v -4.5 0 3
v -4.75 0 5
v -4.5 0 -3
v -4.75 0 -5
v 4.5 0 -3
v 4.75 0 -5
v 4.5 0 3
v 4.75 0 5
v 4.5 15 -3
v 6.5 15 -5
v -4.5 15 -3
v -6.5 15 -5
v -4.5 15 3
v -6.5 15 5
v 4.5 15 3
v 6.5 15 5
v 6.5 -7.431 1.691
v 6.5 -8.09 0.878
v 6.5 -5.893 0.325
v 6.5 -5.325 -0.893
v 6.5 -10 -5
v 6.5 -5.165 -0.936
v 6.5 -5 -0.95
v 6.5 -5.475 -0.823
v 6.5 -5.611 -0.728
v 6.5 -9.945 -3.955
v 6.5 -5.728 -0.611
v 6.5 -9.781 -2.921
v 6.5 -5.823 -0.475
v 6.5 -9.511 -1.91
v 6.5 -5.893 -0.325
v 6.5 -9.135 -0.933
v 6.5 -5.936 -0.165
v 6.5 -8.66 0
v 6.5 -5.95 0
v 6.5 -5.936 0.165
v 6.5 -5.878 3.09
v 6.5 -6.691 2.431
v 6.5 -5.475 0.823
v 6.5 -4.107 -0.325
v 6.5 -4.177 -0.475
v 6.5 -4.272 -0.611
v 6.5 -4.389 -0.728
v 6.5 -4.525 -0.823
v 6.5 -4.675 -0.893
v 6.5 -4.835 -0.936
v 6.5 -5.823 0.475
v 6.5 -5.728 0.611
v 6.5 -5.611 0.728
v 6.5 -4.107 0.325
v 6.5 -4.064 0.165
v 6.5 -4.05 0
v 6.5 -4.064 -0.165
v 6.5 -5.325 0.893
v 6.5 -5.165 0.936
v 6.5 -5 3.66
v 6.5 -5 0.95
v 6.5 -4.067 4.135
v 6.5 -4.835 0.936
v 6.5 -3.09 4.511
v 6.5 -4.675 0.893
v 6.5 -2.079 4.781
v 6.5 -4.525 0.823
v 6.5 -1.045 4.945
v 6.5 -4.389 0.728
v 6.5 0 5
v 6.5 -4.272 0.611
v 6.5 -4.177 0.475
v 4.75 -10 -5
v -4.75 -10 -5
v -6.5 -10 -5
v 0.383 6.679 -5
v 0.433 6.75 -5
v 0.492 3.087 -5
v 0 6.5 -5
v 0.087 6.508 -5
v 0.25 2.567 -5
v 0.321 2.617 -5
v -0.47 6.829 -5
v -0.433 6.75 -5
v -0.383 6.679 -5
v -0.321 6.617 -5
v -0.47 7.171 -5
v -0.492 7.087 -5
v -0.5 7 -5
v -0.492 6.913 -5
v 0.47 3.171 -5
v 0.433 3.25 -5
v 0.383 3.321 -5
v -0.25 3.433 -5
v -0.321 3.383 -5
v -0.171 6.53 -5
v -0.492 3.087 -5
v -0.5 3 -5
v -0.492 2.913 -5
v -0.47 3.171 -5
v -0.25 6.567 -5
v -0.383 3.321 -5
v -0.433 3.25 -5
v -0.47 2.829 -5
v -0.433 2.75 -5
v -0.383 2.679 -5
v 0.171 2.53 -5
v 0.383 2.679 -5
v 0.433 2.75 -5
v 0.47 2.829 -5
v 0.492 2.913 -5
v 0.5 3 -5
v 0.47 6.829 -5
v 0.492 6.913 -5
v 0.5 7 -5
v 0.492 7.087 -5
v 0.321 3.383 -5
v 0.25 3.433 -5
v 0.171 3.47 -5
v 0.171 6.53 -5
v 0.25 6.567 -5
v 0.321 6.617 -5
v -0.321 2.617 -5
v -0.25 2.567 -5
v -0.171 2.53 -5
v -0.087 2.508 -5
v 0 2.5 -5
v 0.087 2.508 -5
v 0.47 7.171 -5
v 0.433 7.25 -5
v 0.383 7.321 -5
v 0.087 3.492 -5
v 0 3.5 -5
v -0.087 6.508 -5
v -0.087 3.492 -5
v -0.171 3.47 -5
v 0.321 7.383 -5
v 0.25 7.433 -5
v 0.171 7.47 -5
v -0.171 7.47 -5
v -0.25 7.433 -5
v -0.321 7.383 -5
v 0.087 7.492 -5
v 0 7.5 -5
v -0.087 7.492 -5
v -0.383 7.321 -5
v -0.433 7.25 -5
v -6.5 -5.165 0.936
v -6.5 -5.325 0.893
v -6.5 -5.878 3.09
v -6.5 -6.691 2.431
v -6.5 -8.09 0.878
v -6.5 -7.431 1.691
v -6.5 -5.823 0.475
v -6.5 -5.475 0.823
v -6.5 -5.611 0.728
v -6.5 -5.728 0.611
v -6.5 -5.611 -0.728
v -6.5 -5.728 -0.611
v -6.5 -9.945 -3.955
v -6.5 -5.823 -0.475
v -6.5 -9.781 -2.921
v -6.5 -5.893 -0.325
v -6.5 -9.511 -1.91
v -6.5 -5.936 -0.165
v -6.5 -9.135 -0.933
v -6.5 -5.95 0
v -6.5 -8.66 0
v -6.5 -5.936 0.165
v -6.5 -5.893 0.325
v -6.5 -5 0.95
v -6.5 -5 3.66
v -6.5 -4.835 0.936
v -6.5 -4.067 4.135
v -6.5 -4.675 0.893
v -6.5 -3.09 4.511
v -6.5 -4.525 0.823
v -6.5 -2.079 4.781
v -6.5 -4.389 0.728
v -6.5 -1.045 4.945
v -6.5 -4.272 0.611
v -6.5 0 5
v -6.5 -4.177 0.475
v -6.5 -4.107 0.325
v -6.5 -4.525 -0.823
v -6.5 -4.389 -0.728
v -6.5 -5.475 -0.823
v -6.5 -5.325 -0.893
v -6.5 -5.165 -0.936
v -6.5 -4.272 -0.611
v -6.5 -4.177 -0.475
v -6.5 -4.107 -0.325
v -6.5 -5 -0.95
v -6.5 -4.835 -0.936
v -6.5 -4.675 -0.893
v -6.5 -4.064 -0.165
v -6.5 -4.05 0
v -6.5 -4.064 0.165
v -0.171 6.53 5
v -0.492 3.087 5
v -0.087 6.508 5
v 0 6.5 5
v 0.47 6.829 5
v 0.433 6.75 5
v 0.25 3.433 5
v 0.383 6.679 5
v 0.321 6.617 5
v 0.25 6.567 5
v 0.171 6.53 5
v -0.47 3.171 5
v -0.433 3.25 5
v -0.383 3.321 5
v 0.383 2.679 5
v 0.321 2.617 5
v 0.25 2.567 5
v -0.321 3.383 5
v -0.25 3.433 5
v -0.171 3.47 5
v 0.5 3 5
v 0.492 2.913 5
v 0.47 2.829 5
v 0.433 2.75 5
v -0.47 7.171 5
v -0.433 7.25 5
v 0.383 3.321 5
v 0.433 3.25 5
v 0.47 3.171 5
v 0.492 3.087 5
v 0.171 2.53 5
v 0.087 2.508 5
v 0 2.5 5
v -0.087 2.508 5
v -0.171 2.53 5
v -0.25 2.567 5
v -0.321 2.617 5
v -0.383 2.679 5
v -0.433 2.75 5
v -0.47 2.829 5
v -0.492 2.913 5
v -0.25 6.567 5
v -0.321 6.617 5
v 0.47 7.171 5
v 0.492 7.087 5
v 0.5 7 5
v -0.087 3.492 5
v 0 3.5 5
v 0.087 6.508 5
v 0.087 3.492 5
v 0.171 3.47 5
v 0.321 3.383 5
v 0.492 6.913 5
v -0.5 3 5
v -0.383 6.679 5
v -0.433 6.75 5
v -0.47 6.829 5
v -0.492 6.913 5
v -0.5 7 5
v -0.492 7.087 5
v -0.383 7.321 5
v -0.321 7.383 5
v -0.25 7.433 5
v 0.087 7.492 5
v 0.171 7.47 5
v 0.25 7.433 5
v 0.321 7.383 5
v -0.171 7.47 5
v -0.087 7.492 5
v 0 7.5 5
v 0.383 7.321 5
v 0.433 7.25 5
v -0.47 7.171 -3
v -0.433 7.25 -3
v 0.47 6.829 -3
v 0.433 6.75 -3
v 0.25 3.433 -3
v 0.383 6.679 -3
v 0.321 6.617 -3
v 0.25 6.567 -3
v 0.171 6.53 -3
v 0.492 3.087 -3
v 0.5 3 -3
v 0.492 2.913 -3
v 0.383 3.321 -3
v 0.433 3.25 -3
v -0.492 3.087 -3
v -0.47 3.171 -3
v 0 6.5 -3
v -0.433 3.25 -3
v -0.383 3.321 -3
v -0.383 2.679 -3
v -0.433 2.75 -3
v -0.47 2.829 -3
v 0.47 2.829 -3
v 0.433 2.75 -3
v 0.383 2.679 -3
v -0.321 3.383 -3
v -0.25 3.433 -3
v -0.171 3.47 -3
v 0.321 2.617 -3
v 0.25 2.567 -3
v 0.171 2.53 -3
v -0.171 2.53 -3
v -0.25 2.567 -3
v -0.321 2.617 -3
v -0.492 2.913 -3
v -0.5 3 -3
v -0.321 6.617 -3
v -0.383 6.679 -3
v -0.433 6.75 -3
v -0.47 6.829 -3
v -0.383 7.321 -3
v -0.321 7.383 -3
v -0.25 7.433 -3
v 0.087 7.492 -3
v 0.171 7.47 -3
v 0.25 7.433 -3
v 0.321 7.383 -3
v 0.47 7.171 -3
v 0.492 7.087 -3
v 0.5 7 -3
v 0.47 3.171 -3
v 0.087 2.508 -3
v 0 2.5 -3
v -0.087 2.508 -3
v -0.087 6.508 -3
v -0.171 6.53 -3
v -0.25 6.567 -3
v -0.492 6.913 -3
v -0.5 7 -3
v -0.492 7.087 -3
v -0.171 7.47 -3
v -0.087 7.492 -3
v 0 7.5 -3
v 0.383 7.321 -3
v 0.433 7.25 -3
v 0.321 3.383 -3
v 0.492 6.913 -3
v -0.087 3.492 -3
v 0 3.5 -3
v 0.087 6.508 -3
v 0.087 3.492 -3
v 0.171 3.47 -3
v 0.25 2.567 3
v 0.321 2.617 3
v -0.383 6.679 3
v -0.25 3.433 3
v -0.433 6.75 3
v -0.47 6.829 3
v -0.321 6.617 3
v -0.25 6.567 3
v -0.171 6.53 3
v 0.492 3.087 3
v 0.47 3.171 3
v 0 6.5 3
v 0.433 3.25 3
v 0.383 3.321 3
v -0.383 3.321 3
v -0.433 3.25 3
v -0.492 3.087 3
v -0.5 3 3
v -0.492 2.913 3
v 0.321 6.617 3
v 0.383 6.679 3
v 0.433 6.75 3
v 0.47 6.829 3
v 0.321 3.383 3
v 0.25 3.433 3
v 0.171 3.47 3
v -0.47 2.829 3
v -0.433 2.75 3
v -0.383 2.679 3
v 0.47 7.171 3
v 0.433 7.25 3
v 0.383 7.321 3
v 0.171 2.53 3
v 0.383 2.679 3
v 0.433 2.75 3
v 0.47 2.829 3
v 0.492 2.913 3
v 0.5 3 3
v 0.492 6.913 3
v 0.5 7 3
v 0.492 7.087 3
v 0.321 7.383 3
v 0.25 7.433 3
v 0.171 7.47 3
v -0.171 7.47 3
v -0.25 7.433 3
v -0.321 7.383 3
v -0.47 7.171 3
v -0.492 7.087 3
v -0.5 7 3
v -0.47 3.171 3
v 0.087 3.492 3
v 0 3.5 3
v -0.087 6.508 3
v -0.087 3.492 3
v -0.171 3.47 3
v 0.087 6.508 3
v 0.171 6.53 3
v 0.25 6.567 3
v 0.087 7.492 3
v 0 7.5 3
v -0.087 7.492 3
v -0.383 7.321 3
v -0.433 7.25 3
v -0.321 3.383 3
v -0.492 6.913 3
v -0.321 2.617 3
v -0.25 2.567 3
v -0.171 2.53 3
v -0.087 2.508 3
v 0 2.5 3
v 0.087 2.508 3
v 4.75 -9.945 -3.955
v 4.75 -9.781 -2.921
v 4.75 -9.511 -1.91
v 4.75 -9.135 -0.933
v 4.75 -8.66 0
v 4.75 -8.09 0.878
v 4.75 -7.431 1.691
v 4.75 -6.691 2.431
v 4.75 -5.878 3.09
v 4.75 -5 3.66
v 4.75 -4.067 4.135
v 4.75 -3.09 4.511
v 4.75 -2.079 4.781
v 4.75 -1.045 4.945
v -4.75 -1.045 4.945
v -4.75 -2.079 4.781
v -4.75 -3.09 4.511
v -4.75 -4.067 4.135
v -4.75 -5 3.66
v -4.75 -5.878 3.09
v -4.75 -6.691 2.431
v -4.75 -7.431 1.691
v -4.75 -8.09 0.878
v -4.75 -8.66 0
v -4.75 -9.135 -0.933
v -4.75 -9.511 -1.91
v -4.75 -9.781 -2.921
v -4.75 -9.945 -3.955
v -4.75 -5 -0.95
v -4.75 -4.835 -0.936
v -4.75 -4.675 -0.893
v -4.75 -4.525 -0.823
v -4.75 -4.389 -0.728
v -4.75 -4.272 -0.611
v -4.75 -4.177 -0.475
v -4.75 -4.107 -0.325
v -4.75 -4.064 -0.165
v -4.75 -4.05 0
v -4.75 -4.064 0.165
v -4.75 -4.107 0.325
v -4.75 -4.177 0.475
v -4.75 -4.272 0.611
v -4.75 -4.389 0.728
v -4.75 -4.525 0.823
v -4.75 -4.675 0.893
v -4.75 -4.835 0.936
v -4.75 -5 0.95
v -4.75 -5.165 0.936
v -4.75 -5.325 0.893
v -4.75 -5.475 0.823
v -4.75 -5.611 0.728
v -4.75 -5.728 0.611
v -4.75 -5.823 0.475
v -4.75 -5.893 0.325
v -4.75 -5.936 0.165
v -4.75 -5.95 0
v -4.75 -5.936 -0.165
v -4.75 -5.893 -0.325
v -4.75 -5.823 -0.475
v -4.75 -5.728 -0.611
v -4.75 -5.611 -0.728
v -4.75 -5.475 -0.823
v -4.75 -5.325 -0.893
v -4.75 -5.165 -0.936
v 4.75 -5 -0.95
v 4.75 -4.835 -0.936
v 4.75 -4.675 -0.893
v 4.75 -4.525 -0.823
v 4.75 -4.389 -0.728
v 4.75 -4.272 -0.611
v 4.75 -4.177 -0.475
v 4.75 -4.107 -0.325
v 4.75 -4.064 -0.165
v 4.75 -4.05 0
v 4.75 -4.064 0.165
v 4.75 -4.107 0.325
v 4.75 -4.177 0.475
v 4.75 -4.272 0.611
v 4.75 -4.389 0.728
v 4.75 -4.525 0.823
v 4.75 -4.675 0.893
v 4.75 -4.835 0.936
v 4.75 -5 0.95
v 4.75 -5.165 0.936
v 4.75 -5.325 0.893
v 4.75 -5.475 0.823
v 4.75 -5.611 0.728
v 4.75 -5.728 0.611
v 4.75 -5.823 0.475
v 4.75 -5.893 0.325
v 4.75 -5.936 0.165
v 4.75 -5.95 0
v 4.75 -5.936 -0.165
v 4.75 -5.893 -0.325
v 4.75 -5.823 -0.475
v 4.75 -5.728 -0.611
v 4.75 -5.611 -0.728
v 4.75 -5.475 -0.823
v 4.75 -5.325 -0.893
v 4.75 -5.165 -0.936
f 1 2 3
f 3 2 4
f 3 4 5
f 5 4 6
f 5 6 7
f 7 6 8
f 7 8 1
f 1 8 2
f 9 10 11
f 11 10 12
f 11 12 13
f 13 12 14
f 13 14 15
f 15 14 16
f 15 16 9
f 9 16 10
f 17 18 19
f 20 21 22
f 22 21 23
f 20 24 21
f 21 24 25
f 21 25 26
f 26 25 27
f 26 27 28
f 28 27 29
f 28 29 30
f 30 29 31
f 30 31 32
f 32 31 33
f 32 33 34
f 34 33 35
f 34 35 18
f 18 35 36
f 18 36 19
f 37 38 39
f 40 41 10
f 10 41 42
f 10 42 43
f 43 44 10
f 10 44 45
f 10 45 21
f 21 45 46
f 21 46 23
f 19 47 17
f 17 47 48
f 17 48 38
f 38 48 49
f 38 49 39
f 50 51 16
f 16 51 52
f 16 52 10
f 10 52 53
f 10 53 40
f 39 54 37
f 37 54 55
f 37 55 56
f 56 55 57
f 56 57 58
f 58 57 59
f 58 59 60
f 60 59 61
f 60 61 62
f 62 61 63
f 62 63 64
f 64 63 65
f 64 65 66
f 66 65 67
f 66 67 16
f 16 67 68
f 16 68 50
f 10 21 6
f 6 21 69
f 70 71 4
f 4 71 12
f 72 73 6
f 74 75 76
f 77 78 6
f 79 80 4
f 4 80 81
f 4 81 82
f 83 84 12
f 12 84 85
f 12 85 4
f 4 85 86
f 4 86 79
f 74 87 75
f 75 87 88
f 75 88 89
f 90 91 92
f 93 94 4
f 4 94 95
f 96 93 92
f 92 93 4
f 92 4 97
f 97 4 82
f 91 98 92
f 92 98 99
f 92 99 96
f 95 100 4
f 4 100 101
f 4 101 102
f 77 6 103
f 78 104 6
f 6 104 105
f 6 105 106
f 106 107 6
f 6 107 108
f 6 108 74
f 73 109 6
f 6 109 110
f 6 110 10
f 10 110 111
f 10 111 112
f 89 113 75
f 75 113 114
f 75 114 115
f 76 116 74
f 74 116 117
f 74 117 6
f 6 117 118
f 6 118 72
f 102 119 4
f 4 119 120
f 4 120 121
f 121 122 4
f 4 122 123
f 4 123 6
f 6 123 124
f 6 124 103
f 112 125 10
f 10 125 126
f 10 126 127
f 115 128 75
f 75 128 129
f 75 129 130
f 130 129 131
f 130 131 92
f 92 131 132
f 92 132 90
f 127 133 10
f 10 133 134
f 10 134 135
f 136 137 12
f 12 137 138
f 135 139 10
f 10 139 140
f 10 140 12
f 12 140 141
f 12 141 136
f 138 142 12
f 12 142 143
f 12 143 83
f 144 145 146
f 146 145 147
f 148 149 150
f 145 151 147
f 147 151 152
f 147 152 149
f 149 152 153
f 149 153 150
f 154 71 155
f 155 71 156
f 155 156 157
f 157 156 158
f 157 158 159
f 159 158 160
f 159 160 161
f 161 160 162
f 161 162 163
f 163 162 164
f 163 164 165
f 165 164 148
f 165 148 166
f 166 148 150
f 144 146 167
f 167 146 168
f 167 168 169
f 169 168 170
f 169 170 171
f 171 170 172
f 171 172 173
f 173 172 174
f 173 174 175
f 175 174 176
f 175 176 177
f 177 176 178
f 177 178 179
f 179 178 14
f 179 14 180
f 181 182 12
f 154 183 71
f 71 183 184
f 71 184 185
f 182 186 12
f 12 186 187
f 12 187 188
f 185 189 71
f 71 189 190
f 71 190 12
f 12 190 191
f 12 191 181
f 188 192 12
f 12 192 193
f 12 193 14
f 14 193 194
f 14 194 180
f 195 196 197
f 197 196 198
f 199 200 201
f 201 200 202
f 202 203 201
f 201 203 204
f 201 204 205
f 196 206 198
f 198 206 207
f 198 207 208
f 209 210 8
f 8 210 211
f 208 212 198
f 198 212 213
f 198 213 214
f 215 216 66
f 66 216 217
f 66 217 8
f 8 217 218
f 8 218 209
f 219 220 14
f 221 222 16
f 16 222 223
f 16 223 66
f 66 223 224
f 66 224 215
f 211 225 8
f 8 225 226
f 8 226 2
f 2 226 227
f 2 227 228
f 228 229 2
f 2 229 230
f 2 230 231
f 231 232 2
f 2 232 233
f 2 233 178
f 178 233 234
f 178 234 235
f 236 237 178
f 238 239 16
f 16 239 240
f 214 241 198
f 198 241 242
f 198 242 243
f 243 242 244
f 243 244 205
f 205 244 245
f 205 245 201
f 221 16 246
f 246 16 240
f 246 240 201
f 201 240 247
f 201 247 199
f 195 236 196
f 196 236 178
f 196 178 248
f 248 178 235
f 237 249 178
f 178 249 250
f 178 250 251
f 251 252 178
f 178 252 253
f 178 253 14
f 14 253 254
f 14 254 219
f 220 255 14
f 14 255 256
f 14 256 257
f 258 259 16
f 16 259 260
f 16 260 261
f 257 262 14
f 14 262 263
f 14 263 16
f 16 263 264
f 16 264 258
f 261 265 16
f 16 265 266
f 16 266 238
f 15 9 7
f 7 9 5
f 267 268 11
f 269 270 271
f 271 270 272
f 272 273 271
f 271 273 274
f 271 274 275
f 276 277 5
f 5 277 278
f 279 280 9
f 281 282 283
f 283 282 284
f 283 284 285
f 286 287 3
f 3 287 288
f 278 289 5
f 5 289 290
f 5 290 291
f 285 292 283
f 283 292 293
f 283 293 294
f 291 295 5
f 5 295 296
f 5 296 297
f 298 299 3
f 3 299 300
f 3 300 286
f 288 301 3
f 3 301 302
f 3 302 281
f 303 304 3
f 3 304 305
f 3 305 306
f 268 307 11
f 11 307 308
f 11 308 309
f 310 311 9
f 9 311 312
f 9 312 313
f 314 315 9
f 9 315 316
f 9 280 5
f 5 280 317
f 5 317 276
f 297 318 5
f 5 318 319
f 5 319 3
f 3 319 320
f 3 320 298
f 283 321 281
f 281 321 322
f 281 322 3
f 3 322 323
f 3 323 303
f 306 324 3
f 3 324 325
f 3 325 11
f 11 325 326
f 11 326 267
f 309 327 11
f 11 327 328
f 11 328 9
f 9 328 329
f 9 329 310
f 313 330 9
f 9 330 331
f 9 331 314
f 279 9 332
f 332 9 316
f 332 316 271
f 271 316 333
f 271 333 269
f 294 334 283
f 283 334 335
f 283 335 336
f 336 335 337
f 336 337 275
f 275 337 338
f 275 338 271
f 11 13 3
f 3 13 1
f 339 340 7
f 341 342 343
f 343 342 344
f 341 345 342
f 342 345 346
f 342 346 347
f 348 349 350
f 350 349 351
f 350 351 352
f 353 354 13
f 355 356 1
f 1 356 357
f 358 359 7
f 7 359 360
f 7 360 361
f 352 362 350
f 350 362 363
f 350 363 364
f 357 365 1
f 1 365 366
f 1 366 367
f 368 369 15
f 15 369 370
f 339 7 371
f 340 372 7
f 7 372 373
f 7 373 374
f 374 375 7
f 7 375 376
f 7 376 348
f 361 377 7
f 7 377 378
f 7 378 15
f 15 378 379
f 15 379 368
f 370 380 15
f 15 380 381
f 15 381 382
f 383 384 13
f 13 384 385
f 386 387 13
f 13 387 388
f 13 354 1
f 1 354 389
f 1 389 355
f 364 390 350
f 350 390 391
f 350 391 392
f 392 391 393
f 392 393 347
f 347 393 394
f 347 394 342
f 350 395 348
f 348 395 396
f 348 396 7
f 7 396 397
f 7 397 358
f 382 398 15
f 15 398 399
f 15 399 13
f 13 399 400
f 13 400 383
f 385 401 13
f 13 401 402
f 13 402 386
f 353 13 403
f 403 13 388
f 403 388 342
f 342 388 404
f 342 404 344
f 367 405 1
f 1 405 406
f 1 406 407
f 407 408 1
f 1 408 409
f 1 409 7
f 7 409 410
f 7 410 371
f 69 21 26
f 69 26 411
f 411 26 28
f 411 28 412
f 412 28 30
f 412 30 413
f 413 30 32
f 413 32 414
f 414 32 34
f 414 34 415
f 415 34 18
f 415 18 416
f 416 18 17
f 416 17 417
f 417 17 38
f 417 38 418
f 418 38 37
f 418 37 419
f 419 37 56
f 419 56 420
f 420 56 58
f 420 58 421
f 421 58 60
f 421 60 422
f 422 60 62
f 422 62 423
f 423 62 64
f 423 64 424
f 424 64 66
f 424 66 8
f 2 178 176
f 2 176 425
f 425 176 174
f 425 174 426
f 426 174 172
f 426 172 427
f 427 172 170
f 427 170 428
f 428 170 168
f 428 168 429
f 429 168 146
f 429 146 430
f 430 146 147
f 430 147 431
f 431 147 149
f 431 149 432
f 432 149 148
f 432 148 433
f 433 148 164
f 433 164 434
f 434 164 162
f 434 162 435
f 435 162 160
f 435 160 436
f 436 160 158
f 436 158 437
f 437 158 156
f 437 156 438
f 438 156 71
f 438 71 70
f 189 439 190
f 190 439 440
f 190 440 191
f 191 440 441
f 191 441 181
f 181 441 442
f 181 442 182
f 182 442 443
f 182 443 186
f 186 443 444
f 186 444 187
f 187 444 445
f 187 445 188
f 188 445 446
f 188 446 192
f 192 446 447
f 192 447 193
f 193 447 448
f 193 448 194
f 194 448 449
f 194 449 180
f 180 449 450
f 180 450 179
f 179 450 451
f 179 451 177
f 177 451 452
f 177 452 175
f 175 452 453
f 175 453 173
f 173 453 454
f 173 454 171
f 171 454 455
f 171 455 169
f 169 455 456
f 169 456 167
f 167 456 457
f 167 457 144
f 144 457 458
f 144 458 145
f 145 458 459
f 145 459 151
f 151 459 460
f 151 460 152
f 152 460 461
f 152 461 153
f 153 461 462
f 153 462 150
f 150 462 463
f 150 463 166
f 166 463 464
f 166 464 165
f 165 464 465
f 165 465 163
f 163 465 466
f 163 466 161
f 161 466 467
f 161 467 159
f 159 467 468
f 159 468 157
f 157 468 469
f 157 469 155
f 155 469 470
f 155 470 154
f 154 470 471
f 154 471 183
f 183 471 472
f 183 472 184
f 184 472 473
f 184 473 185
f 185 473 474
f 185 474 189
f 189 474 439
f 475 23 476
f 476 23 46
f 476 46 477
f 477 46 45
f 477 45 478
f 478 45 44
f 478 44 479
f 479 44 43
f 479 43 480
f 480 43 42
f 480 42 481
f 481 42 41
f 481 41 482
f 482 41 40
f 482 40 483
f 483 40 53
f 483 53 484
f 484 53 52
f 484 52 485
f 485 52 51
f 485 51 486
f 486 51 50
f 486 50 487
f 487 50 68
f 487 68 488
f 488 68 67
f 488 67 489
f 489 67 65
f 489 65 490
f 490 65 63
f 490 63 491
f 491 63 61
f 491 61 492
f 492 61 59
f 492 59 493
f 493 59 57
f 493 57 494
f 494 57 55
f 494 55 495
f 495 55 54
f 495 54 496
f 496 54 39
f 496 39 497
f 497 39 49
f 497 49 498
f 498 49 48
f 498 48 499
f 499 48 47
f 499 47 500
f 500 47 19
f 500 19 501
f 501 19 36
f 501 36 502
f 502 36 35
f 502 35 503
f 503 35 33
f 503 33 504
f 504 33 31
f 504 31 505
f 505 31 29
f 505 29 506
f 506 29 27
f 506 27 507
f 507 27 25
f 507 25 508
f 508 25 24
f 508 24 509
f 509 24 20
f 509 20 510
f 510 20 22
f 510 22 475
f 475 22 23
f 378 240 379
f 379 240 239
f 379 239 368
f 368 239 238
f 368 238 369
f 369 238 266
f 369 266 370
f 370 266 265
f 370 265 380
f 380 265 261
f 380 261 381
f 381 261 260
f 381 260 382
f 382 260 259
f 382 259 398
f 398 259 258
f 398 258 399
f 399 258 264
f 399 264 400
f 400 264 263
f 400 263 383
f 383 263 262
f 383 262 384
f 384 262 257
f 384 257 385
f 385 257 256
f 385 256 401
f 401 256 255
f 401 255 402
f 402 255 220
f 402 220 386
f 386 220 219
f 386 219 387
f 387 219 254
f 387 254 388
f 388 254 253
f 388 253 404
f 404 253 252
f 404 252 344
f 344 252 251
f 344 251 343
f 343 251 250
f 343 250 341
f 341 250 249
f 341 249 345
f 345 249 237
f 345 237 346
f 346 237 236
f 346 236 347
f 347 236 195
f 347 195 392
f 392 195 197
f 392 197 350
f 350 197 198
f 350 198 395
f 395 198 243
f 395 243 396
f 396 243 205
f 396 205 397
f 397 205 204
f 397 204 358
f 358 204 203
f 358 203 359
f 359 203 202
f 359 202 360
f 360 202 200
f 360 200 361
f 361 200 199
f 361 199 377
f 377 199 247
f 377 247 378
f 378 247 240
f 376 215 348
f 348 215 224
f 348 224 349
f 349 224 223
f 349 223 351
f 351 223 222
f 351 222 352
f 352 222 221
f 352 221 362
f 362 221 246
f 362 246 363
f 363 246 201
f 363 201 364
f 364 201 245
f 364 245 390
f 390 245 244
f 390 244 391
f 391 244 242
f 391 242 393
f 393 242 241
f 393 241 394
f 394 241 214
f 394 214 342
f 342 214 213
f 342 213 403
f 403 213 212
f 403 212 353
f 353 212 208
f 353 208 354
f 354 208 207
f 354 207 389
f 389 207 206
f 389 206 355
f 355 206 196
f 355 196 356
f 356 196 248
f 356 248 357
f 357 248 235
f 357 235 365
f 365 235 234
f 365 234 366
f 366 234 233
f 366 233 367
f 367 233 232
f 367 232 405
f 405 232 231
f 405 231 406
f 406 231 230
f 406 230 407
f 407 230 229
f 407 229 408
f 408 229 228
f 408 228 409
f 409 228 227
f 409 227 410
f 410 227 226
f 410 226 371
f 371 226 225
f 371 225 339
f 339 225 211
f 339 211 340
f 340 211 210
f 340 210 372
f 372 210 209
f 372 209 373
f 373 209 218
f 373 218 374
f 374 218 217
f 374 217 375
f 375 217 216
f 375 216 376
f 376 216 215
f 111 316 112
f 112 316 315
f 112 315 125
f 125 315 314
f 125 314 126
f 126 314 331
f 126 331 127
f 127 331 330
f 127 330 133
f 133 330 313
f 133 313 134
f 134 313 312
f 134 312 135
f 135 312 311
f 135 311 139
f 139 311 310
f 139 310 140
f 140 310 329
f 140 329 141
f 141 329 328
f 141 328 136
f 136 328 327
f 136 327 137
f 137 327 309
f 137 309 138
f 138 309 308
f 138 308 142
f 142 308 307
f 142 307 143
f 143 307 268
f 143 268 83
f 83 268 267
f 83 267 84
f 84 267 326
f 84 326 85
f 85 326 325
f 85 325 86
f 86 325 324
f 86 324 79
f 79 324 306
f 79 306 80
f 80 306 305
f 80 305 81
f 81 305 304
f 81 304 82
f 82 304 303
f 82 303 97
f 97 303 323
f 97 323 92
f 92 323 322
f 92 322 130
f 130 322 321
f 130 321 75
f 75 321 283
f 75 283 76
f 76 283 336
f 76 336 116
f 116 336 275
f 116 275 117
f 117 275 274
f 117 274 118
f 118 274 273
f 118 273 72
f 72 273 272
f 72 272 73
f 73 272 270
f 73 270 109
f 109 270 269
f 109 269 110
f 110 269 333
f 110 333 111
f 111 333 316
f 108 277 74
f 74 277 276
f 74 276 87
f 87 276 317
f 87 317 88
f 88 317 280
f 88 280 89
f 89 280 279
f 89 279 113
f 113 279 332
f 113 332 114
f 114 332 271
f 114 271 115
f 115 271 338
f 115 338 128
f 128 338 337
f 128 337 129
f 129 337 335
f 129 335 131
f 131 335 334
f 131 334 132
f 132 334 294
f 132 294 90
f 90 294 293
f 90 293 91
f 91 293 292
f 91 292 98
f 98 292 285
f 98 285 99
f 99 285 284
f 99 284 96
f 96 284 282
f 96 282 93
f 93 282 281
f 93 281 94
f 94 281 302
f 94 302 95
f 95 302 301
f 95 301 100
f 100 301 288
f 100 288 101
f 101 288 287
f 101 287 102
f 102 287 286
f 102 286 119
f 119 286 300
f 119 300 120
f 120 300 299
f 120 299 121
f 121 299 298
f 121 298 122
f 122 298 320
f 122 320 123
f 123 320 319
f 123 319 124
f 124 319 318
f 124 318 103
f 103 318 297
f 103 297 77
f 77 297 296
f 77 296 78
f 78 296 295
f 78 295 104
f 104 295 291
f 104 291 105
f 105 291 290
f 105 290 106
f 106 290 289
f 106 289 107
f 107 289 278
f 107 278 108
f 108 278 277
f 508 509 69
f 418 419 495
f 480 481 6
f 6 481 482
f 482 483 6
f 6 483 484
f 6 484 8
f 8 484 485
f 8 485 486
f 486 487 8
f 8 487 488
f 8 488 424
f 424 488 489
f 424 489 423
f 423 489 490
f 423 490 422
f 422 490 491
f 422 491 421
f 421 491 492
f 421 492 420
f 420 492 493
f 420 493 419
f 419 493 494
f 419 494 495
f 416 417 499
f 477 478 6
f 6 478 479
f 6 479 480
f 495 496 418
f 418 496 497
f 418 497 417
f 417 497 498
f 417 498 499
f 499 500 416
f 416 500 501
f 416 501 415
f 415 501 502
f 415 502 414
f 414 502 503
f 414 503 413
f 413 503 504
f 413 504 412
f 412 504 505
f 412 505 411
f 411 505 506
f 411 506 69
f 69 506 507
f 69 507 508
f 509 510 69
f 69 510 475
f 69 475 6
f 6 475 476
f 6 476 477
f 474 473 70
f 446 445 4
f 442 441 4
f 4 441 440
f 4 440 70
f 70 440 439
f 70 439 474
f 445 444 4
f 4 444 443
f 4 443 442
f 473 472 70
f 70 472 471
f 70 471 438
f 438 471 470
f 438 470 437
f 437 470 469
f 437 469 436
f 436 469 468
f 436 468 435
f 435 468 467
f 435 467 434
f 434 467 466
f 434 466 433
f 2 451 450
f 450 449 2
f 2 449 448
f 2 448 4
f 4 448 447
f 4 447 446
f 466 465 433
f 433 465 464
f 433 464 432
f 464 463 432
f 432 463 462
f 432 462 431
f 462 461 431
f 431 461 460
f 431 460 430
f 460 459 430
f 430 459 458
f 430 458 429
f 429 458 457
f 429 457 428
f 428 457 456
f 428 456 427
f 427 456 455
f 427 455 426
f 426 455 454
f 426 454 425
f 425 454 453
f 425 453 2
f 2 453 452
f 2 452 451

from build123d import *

# Parameters (mm, degrees)
SKETCH1_W               = 13
SKETCH1_H               = 10
SKETCH1_W_2             = 9
SKETCH1_H_2             = 6
BOSS_EXTRUDE1_DEPTH     = 15
BOSS_EXTRUDE2_DEPTH     = 2
SKETCH3_R               = 0.95
CUT_EXTRUDE1_DEPTH      = 14
SKETCH4_R               = 0.5
CUT_EXTRUDE2_DEPTH      = 11
SKETCH5_W               = 0.25
SKETCH5_H               = 10
CUT_EXTRUDE3_DEPTH      = 6
CUT_EXTRUDE3_DEPTH_BACK = 6


with BuildPart() as part:
    # Sketch1 → Boss-Extrude1 (new body)
    with BuildSketch(Plane(origin=(0, 0, 0), x_dir=(1, 0, 0), z_dir=(0, 1, 0))):
        Rectangle(SKETCH1_W, SKETCH1_H)
        Rectangle(SKETCH1_W_2, SKETCH1_H_2, mode=Mode.SUBTRACT)
    extrude(amount=BOSS_EXTRUDE1_DEPTH)

    # Sketch2 → Boss-Extrude2 (add)
    with BuildSketch(Plane(origin=(6.5, 0, 0), x_dir=(0, 0, -1), z_dir=(1, 0, 0))):
        with BuildLine():
            ThreePointArc((-5, 0), (-2.071067812, -7.071067812), (5, -10))
            Line((5, -10), (5, 0))
            Line((5, 0), (-5, 0))
        make_face()
    boss_extrude2 = extrude(amount=-BOSS_EXTRUDE2_DEPTH)

    # Mirror1: Boss-Extrude2 across plane
    add(boss_extrude2.mirror(Plane(origin=(0, 0, 0), x_dir=(0, 0, 1), z_dir=(1, 0, 0))))

    # Sketch3 → Cut-Extrude1 (cut, through all)
    with BuildSketch(Plane(origin=(6.5, 0, 0), x_dir=(0, 0, -1), z_dir=(1, 0, 0))):
        with Locations((0, -5)):
            Circle(SKETCH3_R)
    extrude(amount=-CUT_EXTRUDE1_DEPTH, mode=Mode.SUBTRACT)

    # Sketch4 → Cut-Extrude2 (cut, through all)
    with BuildSketch(Plane.XY.offset(5)):
        with Locations((0, 3)):
            Circle(SKETCH4_R)
        with Locations((0, 7)):
            Circle(SKETCH4_R)
    extrude(amount=-CUT_EXTRUDE2_DEPTH, mode=Mode.SUBTRACT)

    # Sketch5 → Cut-Extrude3 (cut, two sides)
    with BuildSketch(Plane.XY) as cut_extrude3_sk:
        with Locations((-4.625, -5)):
            Rectangle(SKETCH5_W, SKETCH5_H)
        with Locations((4.625, -5)):
            Rectangle(SKETCH5_W, SKETCH5_H)
    extrude(amount=CUT_EXTRUDE3_DEPTH, mode=Mode.SUBTRACT)
    extrude(cut_extrude3_sk.sketch, amount=-CUT_EXTRUDE3_DEPTH_BACK, mode=Mode.SUBTRACT)


solid = part.part
